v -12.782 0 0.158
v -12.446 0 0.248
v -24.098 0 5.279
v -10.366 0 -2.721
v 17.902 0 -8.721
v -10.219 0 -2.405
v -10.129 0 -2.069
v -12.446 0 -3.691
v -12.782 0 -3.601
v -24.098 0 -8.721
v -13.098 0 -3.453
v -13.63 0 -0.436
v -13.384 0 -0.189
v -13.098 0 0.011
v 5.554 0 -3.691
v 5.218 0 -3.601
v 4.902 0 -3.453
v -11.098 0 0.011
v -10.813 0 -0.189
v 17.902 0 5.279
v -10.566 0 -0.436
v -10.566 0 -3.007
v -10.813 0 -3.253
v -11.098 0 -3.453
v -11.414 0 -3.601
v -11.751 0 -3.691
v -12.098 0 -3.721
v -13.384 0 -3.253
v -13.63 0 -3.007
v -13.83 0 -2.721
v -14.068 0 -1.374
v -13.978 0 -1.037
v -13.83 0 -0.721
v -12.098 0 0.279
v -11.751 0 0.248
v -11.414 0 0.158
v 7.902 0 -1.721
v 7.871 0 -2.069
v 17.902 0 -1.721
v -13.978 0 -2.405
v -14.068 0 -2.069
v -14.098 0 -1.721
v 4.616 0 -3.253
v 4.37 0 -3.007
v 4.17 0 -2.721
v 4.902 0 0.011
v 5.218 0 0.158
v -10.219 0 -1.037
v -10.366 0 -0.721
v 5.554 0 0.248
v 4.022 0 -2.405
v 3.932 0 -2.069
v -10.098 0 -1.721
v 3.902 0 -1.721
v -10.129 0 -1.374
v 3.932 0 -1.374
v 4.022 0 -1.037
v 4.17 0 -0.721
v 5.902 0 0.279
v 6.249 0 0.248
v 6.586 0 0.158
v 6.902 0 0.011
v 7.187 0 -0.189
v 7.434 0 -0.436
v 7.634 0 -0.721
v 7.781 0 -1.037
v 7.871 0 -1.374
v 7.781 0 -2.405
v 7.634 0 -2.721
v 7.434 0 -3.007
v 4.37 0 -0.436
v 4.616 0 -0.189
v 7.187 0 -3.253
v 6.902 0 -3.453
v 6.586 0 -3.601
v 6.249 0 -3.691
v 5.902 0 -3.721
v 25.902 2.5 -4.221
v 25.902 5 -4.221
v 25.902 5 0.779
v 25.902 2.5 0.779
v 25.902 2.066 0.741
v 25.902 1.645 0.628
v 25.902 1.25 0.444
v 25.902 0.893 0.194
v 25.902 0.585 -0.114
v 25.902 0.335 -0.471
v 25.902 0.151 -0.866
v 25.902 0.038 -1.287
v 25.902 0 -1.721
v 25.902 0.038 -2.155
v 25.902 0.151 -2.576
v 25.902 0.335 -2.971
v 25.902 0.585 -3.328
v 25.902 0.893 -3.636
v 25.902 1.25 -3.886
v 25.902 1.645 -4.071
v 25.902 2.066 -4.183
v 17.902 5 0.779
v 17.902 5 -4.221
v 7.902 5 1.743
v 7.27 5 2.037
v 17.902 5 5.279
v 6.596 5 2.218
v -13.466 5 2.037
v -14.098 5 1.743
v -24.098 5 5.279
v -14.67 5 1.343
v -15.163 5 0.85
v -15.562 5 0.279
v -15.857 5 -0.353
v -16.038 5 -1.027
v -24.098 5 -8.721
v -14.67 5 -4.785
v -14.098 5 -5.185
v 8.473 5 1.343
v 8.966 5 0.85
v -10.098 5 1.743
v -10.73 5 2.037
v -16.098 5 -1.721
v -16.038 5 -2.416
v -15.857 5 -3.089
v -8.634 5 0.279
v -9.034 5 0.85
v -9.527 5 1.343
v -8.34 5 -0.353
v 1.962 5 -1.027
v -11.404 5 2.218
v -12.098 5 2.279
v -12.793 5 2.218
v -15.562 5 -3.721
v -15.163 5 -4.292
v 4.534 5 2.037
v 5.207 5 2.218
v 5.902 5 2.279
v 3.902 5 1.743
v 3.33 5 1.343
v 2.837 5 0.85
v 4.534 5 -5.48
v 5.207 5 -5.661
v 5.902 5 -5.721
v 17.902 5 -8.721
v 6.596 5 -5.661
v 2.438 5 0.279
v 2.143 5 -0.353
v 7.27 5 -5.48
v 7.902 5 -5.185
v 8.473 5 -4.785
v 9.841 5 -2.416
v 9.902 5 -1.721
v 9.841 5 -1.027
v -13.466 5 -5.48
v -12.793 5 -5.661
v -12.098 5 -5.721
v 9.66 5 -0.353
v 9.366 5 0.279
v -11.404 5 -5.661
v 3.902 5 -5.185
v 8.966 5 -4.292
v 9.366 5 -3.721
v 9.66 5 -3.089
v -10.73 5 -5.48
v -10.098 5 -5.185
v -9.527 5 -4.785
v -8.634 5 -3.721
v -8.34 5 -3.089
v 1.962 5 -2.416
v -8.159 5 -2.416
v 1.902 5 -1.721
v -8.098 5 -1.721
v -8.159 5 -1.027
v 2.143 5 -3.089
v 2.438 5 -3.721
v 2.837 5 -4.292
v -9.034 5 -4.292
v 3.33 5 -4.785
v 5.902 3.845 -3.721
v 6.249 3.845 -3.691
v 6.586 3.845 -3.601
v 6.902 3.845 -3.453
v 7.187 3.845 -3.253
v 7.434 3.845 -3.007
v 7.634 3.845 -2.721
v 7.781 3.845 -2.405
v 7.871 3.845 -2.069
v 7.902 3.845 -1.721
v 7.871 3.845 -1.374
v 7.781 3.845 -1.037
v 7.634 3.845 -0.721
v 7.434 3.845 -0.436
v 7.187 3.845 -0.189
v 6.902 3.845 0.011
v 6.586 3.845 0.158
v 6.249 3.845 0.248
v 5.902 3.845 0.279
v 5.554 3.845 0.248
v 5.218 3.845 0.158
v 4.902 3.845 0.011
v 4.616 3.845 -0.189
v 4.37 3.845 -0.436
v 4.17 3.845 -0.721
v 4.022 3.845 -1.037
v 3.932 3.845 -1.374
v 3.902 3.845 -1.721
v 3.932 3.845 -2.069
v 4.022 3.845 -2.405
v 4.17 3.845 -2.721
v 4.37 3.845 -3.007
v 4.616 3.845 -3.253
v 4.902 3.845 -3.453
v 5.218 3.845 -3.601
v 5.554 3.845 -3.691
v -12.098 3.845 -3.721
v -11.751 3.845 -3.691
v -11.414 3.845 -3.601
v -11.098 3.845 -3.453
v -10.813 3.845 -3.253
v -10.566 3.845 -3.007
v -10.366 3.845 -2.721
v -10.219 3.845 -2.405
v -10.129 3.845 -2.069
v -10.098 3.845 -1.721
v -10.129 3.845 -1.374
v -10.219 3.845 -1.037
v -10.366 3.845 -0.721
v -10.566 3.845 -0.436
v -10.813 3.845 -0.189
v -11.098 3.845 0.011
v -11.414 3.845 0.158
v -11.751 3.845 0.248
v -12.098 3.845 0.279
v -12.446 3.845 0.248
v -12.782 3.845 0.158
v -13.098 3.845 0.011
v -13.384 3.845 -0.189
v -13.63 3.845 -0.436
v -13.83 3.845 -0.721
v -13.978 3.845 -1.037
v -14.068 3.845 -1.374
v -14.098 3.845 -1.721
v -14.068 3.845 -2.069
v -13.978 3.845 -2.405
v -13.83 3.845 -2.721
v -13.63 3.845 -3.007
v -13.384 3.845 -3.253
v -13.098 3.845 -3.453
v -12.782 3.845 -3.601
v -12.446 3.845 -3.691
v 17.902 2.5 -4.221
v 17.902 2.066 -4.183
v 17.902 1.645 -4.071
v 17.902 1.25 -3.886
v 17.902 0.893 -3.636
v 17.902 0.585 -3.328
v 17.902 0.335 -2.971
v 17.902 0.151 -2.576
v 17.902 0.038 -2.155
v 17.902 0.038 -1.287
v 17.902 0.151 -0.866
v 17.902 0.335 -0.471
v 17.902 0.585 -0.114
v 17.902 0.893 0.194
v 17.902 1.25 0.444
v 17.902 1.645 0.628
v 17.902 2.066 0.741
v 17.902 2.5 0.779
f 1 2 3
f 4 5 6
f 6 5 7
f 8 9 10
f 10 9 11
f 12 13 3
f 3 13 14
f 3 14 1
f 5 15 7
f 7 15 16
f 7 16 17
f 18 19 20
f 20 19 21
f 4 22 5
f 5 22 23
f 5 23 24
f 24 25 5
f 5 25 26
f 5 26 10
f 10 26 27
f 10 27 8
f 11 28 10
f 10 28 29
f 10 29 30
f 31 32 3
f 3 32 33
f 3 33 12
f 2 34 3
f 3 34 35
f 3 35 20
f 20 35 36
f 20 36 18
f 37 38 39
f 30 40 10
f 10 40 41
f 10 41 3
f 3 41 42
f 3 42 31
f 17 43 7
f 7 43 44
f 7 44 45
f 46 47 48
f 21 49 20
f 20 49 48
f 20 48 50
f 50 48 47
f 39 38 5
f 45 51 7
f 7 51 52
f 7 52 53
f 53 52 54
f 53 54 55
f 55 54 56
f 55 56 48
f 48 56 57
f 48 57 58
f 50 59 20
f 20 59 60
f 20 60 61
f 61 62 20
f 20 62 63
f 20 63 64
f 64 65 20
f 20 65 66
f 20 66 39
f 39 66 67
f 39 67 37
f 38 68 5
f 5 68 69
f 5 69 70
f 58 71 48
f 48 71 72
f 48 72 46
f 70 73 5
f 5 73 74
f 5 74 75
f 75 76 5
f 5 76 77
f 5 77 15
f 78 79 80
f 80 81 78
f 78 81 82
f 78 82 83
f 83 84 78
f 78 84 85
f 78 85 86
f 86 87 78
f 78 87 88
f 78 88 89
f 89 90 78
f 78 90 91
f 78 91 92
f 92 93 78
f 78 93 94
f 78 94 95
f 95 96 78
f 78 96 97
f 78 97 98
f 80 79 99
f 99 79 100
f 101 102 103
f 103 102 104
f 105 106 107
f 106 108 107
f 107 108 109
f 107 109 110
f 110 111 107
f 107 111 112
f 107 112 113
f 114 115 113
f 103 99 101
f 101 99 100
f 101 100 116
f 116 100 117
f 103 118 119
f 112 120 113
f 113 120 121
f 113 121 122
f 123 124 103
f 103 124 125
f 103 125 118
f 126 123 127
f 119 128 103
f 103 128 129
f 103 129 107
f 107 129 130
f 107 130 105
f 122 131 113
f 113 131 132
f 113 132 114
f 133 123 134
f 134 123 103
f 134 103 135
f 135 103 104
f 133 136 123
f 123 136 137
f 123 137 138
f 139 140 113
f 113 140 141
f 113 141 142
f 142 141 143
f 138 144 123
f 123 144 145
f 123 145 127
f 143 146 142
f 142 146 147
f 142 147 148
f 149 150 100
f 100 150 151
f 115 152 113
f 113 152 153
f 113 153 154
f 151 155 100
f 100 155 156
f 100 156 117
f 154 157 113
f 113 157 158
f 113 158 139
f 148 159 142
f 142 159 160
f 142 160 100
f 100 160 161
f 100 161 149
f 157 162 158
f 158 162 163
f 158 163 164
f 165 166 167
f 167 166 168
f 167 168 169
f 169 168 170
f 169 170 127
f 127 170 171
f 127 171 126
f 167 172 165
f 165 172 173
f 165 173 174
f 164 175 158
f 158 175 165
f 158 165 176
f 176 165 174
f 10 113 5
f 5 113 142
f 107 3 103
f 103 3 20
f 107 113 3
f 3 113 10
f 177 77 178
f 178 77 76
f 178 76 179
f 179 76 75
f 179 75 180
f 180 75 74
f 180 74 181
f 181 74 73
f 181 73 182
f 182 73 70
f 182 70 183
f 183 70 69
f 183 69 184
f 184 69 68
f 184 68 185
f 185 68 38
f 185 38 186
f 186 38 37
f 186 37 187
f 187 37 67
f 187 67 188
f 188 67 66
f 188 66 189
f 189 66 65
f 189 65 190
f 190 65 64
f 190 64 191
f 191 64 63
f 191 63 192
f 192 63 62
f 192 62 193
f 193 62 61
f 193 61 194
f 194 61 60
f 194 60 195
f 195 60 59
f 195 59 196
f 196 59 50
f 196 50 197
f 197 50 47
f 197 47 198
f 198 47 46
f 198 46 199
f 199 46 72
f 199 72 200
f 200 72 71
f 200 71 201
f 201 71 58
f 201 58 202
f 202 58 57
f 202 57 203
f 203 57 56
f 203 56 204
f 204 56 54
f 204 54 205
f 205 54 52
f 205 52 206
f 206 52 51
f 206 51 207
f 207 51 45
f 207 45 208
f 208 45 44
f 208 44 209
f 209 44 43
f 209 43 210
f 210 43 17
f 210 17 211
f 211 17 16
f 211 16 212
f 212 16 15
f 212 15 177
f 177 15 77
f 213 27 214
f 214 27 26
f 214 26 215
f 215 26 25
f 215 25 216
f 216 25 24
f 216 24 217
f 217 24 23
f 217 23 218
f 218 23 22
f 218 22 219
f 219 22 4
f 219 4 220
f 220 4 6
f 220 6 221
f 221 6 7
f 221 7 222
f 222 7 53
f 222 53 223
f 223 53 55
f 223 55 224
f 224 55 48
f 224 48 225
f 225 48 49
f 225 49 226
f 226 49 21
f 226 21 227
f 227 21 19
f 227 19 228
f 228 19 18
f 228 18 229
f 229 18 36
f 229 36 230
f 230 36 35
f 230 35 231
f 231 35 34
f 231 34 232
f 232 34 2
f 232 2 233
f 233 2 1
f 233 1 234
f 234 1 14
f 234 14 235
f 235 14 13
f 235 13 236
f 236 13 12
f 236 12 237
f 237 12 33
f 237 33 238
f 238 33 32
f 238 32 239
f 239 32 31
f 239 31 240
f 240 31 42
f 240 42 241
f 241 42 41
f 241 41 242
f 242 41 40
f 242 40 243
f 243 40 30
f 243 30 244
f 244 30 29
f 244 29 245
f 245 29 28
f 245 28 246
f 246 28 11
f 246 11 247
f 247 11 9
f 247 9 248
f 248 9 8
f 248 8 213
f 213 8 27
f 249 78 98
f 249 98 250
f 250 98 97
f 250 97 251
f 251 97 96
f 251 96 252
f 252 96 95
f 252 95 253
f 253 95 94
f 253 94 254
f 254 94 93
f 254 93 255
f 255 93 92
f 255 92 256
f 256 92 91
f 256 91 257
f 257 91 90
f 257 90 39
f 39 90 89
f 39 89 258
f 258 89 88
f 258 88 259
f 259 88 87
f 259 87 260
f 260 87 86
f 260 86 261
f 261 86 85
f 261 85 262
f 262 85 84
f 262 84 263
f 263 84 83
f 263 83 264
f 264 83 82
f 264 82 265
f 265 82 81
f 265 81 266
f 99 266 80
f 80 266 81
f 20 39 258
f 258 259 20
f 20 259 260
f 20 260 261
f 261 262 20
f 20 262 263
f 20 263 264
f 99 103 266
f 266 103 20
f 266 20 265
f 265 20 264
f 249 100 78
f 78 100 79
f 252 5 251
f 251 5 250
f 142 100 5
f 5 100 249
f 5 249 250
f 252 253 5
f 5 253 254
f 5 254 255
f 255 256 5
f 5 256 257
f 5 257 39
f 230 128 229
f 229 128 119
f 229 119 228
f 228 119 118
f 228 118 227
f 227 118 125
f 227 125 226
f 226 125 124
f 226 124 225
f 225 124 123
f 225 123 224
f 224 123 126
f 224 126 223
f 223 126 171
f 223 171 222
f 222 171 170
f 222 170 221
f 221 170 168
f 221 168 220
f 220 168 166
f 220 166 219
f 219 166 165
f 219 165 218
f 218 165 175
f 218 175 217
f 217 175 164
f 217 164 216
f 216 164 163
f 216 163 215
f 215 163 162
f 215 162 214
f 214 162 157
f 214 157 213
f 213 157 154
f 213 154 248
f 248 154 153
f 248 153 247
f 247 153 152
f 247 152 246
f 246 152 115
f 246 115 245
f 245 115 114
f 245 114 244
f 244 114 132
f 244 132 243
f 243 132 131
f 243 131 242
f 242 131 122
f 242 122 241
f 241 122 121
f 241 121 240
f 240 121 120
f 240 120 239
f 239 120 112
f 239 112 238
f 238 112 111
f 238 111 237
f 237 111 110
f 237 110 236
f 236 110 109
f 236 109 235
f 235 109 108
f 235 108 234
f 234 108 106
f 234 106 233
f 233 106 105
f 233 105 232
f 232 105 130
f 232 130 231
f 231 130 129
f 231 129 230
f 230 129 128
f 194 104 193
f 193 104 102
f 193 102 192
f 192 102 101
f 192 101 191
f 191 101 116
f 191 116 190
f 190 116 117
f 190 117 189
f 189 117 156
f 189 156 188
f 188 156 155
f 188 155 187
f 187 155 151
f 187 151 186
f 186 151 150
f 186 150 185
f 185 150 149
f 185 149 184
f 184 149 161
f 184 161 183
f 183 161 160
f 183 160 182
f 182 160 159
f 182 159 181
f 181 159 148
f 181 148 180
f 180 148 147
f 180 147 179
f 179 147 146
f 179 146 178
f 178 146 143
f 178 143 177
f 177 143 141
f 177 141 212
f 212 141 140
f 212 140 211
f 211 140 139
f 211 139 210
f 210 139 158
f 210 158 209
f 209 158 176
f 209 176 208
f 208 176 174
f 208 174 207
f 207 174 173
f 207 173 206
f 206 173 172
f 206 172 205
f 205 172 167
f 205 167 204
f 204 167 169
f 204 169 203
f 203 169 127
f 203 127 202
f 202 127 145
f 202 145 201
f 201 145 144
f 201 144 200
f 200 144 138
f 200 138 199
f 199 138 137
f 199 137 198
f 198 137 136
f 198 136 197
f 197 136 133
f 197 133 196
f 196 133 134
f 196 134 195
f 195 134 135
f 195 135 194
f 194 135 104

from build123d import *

# Parameters (mm, degrees)
SKETCH1_W           = 50
SKETCH1_H           = 14
SKETCH1_R           = 2
BOSS_EXTRUDE1_DEPTH = 5
CUT_EXTRUDE1_DEPTH  = 8
CHAMFER1_SIZE       = 2
CHAMFER1_SIZE2      = 1.154700538


with BuildPart() as part:
    # Sketch1 → Boss-Extrude1 (new body)
    with BuildSketch(Plane(origin=(0, 0, 0), x_dir=(1, 0, 0), z_dir=(0, 1, 0))):
        with Locations((0.901639344, 1.721311475)):
            Rectangle(SKETCH1_W, SKETCH1_H)
        with Locations(Location((5.901639344, 1.721311475, 0), (0, 0, 270))):
            Circle(SKETCH1_R, mode=Mode.SUBTRACT)
        with Locations(Location((-12.098360656, 1.721311475, 0), (0, 0, 270))):
            Circle(SKETCH1_R, mode=Mode.SUBTRACT)
    extrude(amount=BOSS_EXTRUDE1_DEPTH)

    # Sketch2 → Cut-Extrude1 (cut)
    with BuildSketch(Plane(origin=(25.901639344, 0, 0), x_dir=(0, 0, -1), z_dir=(1, 0, 0))):
        with BuildLine():
            Line((-0.778688525, 5), (-5.278688525, 5))
            Line((-5.278688525, 5), (-5.278688525, 0))
            Line((-5.278688525, 0), (1.721311475, 0))
            ThreePointArc((1.721311475, 0), (-0.046455478, 0.732233047), (-0.778688525, 2.5))
            Line((-0.778688525, 2.5), (-0.778688525, 5))
        make_face()
        with BuildLine():
            ThreePointArc((4.221311475, 2.5), (3.489078428, 0.732233047), (1.721311475, 0))
            Line((1.721311475, 0), (8.721311475, 0))
            Line((8.721311475, 0), (8.721311475, 5))
            Line((8.721311475, 5), (4.221311475, 5))
            Line((4.221311475, 5), (4.221311475, 2.5))
        make_face()
    extrude(amount=-CUT_EXTRUDE1_DEPTH, mode=Mode.SUBTRACT)

    # Chamfer1
    chamfer1_edges = [part.edges().sort_by_distance(p)[0] for p in [
        (5.901639344, 5, -3.721311475),
        (-12.098360656, 5, -3.721311475),
    ]]
    chamfer1_side = [part.faces().sort_by_distance(p)[0] for p in [
        (-1.439620717, 5, -1.721311475),
    ]]
    chamfer(chamfer1_edges, length=CHAMFER1_SIZE, length2=CHAMFER1_SIZE2, reference=chamfer1_side[0])


solid = part.part
